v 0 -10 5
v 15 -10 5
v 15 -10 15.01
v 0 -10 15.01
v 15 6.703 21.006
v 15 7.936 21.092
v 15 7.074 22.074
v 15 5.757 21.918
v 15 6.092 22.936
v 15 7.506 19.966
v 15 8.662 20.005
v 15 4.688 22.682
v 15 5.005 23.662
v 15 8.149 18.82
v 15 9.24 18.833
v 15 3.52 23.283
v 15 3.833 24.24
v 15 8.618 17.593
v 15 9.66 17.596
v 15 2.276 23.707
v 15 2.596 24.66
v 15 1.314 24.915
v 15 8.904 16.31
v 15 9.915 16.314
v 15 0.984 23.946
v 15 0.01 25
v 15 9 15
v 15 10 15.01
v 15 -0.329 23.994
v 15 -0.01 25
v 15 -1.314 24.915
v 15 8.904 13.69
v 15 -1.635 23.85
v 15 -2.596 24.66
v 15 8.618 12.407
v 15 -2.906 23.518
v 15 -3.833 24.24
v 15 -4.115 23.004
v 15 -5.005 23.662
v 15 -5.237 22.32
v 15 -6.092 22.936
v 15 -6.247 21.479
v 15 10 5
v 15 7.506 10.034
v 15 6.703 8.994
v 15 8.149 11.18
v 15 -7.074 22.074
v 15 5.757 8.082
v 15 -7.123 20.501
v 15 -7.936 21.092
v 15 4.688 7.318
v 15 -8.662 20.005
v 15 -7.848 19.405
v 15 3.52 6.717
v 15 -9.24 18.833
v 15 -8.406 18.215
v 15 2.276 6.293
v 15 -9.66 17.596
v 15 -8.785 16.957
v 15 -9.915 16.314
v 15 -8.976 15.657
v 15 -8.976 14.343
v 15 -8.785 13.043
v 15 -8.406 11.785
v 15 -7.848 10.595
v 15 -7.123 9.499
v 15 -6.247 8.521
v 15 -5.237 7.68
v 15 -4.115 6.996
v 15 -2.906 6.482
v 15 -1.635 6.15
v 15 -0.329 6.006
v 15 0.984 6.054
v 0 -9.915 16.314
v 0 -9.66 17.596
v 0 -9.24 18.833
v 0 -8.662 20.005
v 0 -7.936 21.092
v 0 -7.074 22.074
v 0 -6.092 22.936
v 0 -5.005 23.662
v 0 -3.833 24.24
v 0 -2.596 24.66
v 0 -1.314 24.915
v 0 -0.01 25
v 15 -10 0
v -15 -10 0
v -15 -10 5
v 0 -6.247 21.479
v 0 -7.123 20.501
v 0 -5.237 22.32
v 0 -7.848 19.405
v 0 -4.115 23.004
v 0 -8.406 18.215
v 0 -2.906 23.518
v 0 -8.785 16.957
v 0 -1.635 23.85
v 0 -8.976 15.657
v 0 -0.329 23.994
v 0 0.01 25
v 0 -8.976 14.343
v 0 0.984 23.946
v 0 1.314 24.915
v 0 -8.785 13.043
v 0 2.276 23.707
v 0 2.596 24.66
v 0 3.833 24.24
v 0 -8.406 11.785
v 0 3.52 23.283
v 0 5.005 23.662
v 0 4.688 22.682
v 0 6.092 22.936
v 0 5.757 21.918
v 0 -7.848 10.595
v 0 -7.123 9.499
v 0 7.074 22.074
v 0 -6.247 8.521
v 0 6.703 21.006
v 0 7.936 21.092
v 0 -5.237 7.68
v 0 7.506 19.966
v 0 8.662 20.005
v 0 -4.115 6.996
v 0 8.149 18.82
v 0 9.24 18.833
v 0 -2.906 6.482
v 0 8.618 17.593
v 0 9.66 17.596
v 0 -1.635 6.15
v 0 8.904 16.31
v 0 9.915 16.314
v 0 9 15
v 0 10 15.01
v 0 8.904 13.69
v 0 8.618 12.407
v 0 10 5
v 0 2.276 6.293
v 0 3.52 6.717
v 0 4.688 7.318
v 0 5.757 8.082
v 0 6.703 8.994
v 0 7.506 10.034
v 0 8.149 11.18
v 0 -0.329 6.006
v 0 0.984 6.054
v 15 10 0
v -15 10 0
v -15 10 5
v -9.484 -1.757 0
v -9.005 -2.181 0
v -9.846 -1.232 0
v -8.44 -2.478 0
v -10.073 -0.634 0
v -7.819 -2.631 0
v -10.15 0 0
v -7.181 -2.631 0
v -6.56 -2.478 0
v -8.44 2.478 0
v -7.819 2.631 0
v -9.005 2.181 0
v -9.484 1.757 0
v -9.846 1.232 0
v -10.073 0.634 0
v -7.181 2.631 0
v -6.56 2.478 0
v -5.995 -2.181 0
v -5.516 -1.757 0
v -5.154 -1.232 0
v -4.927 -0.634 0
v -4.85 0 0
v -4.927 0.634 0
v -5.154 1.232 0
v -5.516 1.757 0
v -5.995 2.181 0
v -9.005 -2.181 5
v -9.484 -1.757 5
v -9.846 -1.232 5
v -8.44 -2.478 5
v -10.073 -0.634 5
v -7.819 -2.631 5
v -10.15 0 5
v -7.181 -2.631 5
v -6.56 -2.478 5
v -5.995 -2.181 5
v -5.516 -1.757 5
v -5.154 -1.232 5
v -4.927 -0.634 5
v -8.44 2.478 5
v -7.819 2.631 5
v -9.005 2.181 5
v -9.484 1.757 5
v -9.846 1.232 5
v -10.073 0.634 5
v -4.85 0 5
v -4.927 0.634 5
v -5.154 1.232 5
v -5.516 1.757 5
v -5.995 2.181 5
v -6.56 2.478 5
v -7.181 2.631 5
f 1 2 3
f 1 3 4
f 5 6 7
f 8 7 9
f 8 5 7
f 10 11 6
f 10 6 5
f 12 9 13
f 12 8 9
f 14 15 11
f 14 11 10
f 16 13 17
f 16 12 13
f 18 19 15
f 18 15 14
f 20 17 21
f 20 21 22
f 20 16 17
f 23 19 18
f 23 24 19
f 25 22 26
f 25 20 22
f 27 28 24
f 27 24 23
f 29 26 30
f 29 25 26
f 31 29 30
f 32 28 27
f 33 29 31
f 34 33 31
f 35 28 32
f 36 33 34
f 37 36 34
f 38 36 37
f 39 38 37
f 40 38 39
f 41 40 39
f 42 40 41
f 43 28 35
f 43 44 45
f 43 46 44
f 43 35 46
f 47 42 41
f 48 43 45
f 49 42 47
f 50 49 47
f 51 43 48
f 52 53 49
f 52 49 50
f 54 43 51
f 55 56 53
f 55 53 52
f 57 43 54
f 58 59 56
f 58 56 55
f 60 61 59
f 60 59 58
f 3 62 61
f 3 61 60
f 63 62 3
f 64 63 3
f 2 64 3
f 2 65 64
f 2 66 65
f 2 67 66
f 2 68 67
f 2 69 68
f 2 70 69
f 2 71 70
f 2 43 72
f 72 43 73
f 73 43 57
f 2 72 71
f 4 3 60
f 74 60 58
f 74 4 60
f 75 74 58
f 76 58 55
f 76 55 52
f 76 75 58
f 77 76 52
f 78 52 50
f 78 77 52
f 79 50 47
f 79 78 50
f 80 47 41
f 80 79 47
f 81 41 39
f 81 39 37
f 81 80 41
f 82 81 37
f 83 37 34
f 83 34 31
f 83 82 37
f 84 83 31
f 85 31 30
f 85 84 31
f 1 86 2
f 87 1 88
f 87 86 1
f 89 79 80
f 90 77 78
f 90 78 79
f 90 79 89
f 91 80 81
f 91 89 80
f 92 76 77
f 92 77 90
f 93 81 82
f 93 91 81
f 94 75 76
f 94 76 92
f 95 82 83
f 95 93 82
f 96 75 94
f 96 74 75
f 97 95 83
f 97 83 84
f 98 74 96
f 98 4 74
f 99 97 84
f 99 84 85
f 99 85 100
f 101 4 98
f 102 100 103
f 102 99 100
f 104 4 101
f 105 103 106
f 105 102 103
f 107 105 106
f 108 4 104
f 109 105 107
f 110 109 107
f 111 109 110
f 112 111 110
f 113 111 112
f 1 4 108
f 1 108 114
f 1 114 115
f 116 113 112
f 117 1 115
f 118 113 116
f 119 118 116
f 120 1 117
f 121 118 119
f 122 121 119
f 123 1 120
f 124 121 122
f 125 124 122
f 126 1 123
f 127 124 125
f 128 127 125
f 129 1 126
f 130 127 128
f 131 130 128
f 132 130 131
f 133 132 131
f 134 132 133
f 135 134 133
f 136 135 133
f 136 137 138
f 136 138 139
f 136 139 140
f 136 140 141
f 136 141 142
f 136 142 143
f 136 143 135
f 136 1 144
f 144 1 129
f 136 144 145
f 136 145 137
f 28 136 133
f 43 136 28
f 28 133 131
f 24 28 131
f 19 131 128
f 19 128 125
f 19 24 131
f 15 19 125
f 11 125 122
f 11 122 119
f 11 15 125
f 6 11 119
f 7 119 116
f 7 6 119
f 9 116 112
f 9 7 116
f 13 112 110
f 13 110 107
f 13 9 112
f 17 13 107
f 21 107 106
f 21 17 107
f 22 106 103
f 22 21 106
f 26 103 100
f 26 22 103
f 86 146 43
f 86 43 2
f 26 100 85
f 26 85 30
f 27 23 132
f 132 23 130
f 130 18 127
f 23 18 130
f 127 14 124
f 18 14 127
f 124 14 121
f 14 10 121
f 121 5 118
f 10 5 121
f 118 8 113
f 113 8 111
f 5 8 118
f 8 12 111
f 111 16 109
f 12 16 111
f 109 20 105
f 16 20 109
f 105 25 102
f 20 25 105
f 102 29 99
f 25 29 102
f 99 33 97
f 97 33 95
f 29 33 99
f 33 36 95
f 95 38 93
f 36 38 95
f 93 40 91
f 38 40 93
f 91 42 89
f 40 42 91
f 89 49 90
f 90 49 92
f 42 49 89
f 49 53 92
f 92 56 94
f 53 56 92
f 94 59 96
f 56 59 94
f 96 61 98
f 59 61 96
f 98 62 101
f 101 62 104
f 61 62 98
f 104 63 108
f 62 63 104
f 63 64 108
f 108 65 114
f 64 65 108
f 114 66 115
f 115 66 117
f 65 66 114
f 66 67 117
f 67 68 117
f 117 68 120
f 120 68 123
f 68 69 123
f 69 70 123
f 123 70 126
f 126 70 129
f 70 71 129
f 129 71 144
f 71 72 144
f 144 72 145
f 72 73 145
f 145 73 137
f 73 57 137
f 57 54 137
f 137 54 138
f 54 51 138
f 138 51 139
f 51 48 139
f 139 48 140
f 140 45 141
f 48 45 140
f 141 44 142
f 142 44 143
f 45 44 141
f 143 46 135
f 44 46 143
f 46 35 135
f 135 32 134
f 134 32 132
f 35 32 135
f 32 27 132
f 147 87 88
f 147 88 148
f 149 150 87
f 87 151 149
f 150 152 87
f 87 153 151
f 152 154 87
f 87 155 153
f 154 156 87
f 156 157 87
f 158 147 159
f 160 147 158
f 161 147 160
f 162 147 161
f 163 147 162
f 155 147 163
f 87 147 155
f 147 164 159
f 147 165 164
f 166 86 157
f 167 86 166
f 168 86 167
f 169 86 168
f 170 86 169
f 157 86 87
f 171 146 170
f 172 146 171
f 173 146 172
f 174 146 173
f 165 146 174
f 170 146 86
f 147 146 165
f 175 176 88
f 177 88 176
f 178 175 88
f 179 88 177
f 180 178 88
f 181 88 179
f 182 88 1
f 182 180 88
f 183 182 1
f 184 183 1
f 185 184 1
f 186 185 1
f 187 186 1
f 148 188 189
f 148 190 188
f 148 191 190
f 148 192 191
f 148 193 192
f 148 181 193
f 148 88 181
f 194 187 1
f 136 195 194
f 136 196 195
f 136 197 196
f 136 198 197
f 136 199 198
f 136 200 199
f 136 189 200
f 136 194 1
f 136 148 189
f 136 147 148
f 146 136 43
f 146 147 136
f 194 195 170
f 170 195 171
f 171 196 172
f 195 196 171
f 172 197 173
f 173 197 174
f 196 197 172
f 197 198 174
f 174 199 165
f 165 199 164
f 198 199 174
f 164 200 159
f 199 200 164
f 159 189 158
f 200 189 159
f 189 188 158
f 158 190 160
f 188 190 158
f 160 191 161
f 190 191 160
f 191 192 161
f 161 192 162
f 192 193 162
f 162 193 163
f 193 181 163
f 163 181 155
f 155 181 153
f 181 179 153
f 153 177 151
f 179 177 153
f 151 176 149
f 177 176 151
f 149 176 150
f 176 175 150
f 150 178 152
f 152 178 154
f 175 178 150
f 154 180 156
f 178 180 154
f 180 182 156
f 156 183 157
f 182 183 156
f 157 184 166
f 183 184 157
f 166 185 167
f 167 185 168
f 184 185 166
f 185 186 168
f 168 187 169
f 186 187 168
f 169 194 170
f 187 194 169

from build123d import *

# Parameters (mm, degrees)
SKETCH_W        = 30
SKETCH_H        = 20
PAD_DEPTH       = 5
SKETCH001_R     = 2.65
POCKET_DEPTH    = 5
SKETCH002_W     = 15
SKETCH002_H     = 20
PAD001_DEPTH    = 20
SKETCH003_R     = 9
POCKET001_DEPTH = 15
FILLET_R        = 9.99


with BuildPart() as part:
    # Sketch → Pad (new body)
    with BuildSketch(Plane.XY):
        Rectangle(SKETCH_W, SKETCH_H)
    extrude(amount=PAD_DEPTH)

    # Sketch001 (on Face6 of Pad) → Pocket (cut)
    with BuildSketch(Plane.XY.offset(5)):
        with Locations((-7.5, 0)):
            Circle(SKETCH001_R)
    extrude(amount=-POCKET_DEPTH, mode=Mode.SUBTRACT)

    # Sketch002 (on Face5 of Pocket) → Pad001 (join)
    with BuildSketch(Plane.XY.offset(5)):
        with Locations((7.5, 0)):
            Rectangle(SKETCH002_W, SKETCH002_H)
    extrude(amount=PAD001_DEPTH)

    # Sketch003 (on Face11 of Pad001) → Pocket001 (cut)
    with BuildSketch(Plane.YZ.offset(15)):
        with Locations((0, 15)):
            Circle(SKETCH003_R)
    extrude(amount=-POCKET001_DEPTH, mode=Mode.SUBTRACT)

    # Fillet
    fillet_edges = [part.edges().sort_by_distance(p)[0] for p in [
        (7.5, -10, 25),
        (7.5, 10, 25),
    ]]
    fillet(fillet_edges, radius=FILLET_R)


solid = part.part
